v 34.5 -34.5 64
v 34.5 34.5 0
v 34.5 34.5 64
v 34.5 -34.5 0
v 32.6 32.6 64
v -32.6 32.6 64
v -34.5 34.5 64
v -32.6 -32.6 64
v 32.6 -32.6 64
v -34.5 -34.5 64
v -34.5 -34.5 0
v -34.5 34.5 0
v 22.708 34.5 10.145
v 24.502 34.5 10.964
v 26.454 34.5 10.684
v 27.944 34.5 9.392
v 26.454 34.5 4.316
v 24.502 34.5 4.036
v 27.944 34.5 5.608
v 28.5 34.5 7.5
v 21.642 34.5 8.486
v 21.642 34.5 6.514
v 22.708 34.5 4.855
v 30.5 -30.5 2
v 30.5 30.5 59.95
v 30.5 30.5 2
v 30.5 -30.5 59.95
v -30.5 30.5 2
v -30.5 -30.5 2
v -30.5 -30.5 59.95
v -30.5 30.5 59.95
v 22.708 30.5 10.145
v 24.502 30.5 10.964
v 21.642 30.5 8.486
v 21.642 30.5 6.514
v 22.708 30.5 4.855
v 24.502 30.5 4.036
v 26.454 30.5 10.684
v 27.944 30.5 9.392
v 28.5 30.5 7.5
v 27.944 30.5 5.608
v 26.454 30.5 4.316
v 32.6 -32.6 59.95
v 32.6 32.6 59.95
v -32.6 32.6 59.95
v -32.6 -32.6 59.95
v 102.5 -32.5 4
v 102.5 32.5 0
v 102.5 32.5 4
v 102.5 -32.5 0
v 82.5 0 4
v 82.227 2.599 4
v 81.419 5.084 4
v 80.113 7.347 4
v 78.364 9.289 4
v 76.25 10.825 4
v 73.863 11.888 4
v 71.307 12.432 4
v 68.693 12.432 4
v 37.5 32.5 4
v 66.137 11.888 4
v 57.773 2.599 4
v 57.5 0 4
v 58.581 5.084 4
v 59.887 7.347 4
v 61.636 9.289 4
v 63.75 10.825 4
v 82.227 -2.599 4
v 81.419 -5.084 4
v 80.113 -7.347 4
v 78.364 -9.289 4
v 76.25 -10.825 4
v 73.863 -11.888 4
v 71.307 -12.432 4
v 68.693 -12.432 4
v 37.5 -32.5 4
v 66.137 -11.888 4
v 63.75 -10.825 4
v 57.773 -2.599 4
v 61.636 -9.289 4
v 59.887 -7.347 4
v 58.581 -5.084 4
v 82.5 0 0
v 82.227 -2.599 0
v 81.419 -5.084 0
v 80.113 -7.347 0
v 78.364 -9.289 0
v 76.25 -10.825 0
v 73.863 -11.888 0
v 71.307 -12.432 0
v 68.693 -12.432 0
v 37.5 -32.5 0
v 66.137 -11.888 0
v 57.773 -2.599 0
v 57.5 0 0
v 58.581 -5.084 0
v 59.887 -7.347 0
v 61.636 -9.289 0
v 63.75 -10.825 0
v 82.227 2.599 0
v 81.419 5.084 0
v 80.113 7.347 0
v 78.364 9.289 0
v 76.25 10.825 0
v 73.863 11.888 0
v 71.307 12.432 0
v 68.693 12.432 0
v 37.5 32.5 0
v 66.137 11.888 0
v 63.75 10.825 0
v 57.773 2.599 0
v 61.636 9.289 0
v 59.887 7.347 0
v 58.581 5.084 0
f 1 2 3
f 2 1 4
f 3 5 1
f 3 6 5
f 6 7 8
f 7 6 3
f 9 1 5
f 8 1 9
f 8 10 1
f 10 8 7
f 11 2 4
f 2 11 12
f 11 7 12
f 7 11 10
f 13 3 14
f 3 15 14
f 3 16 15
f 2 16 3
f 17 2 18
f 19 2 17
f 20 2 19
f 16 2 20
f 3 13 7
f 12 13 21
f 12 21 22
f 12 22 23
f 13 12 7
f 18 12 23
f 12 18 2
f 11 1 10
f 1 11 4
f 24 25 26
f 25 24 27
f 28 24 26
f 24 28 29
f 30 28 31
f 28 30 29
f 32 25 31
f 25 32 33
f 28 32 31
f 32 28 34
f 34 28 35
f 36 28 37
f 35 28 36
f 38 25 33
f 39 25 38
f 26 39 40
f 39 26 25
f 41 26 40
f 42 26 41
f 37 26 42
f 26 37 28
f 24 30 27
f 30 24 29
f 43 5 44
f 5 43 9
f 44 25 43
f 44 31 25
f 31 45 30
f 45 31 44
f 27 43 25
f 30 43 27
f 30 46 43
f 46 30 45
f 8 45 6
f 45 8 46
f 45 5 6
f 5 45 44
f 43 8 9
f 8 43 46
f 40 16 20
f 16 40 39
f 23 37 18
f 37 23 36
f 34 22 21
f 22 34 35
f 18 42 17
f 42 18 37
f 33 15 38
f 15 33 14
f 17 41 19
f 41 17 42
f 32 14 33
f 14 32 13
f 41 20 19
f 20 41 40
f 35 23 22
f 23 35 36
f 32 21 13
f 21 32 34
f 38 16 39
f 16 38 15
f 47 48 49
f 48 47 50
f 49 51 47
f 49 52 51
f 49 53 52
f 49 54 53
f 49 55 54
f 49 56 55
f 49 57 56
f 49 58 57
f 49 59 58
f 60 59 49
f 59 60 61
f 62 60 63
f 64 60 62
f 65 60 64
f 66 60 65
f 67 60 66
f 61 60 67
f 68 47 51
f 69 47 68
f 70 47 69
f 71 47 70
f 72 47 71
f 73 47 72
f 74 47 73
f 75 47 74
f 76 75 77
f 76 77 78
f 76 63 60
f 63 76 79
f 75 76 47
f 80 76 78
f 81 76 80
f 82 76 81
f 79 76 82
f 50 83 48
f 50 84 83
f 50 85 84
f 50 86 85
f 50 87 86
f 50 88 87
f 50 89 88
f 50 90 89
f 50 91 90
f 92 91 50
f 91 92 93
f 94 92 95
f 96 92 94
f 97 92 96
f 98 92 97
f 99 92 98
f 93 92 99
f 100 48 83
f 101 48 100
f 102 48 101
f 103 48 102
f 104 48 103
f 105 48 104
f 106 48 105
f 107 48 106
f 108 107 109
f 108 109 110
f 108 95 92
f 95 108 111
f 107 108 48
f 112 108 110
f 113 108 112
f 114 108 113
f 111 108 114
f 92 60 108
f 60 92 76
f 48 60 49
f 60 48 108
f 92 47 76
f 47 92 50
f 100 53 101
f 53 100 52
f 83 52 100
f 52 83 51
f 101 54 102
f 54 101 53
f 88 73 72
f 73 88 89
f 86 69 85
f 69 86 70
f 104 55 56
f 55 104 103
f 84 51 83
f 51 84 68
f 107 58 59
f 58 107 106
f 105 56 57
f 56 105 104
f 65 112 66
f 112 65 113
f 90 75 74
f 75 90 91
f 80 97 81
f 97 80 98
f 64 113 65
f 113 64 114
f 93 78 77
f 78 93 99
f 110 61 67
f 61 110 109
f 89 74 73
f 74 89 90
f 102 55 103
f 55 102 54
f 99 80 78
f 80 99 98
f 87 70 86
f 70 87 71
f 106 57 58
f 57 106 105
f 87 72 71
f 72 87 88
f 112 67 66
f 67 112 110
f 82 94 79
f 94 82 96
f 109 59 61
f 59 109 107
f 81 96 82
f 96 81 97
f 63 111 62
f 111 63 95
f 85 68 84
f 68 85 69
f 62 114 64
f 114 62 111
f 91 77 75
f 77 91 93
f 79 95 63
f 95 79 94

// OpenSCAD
// file: ../templates/caseTemplate.scad
/*
Side model of the control panel, to create the case around it.
*/
X = 0;
Y = 1;
Z = 2;

//this is a case for a panel 
Case([65,65,4], 60, 7);


module Case(topPanel, internalCaseDepth, wireDia){
    ofset = topPanel[Z];
    buffer = 0.2;
    difference(){
        translate([0,0,(internalCaseDepth+ofset)/2]){
            group(){
                difference(){
                    cube([topPanel[X]+ofset, topPanel[Y]+ofset, internalCaseDepth+ofset], true);
                    
                    //create void inside
                    translate([0, 0, 0]){
                        color("red");
                        cube([topPanel[X]-ofset, topPanel[Y]-ofset, internalCaseDepth], true);
                    }
                    
                    //create cutout for toppanel
                    translate([0, 0, internalCaseDepth/2]){
                        cube([topPanel[X]+0.2, topPanel[Y]+0.2, topPanel[Z]+0.1], true);
                    }                    
                }
            }
        }
        
        // make hole for wire 
        // make generic
        translate([topPanel[X]/2-ofset-wireDia/2,(topPanel[Y]+ofset)/2+buffer+wireDia/2,ofset + (wireDia/2)]){
            rotate([90,0,0]){
                cylinder(h=11, d=wireDia);
            }
        }
    }
}
// file: ../templates/controlPanelTemplate.scad
/**
This file helps create control a control panel
placing components you might want, taking into account 
that some components require a thiker panel than others
and some needs to be sunken into the panel 

// below you can see an example of a panel specification.
but you can create your own in 4 steps
1. define a Panel
2. define some components
3. place components on panel 
4. call Panel()


**/
// =========  this should be constants ========
X = 0;
Y = 1;
Z = 2;
COMPONENT = 2;
NAME = 3;
LIP_HEIGHT = 0;
BORE_DIA = 1;
SUNKEN_DIA = 2;
SUNKEN_DEAPTH =3;

/**

// panel[  X, Y,Z]
panel = [100,60,4];

// components
// [LIP_HEIGHT, BORE_DIA, SUNKEN_DIA, SUNKEN_DEAPTH]
jogWheel = [16,        7,         10, 12];
switch   = [ 0,        7,          0,  0];
led      = [ 0,      5.5,          0,  0];


//        [X                    ,Y            , COMPONENT, NAME]
componentPlacement = [
          [panel[0]/4           , panel[1]/2+5, jogWheel, "jog 1"],
          [panel[0] - panel[0]/4, panel[1]/2+5, jogWheel, "jog 2"],
          [10                   , 10          , switch  , "on/off"],
          [panel[0]/2           , 10          , switch  , "fire button"],
          [panel[0]-7.5         , 7.5         , led     , "power led"],
          [panel[0]-15          , 7.5         , led     , "data led"],
          ];


Panel(componentPlacement, panel);

**/

module Panel(componentPlacement, panelDim){
    difference(){
        group(){
            cube(panelDim);
            createLip(componentPlacement, panelDim, lipWith=panelDim[Z]);
        }
        drill(componentPlacement, panelDim);
        sunken(componentPlacement);
    }
    
    module drill(componentPlacement, panelDim, i=0, buffer=1){
        if(i < len(componentPlacement)){
            cp = componentPlacement[i];
            translate([cp[X], cp[Y], 0-buffer/2]){
                cylinder(
                    h = max(cp[COMPONENT][LIP_HEIGHT], panelDim[Z]) + buffer, 
                    d = cp[COMPONENT][BORE_DIA]);
            }
            drill(componentPlacement, panelDim, i+1, buffer);
        }
     }
     
     module createLip(componentPlacement, panelDim, i=0, lipWith=0){
        if(i < len(componentPlacement)){
            cp = componentPlacement[i];
            dia = max(cp[COMPONENT][SUNKEN_DIA], cp[COMPONENT][BORE_DIA]);
            assert(validate(cp, lipWith, dia/2, panelDim), str(cp[NAME], " out of bounds."));

            translate([cp[X], cp[Y], 0]){
                cylinder(
                    h = max(cp[COMPONENT][LIP_HEIGHT], panelDim[Z]), 
                    d = dia + lipWith
                );
            }
            createLip(componentPlacement, panelDim, i+1, lipWith);
        }
    }

    module sunken(componentPlacement, i=0, buffer=1){
        if(i < len(componentPlacement)){
            cp = componentPlacement[i];
            translate([cp[X], cp[Y],0-buffer]){
                cylinder(
                    h=cp[COMPONENT][SUNKEN_DEAPTH] + buffer, 
                    d=cp[COMPONENT][SUNKEN_DIA]
                );
            }
            sunken(componentPlacement, i+1, buffer);
        }
    }
    
    function max(a, b) = a > b ? a : b;
    function min(a, b) = a > b ? a : b;

    function validate(cp, lipWith, r, panelDim) = ((cp[X] + lipWith + r < panelDim[X]) &&
                                            (cp[X] - lipWith - r > 0) &&
                                            (cp[Y] + lipWith + r < panelDim[Y]) &&
                                            (cp[Y] - lipWith - r > 0)
                                            );

}
// main file
include <../templates/controlPanelTemplate.scad>
include <../templates/caseTemplate.scad>

// panel[  X, Y,Z]
panel = [65,65,4];

internalCaseDepth = 60;
wireDia = 7;

// components
// [LIP_HEIGHT, BORE_DIA, SUNKEN_DIA, SUNKEN_DEAPTH]
button  = [0, 25, 0, 0];


//        [X                    ,Y            , COMPONENT, NAME]
componentPlacement = [[panel[X]/2 , panel[Y]/2, button, "the one"]];

Case(panel, internalCaseDepth, wireDia);

translate([panel[X]/2+5, -panel[Y]/2, 0]) {
    Panel(componentPlacement, panel);
}
